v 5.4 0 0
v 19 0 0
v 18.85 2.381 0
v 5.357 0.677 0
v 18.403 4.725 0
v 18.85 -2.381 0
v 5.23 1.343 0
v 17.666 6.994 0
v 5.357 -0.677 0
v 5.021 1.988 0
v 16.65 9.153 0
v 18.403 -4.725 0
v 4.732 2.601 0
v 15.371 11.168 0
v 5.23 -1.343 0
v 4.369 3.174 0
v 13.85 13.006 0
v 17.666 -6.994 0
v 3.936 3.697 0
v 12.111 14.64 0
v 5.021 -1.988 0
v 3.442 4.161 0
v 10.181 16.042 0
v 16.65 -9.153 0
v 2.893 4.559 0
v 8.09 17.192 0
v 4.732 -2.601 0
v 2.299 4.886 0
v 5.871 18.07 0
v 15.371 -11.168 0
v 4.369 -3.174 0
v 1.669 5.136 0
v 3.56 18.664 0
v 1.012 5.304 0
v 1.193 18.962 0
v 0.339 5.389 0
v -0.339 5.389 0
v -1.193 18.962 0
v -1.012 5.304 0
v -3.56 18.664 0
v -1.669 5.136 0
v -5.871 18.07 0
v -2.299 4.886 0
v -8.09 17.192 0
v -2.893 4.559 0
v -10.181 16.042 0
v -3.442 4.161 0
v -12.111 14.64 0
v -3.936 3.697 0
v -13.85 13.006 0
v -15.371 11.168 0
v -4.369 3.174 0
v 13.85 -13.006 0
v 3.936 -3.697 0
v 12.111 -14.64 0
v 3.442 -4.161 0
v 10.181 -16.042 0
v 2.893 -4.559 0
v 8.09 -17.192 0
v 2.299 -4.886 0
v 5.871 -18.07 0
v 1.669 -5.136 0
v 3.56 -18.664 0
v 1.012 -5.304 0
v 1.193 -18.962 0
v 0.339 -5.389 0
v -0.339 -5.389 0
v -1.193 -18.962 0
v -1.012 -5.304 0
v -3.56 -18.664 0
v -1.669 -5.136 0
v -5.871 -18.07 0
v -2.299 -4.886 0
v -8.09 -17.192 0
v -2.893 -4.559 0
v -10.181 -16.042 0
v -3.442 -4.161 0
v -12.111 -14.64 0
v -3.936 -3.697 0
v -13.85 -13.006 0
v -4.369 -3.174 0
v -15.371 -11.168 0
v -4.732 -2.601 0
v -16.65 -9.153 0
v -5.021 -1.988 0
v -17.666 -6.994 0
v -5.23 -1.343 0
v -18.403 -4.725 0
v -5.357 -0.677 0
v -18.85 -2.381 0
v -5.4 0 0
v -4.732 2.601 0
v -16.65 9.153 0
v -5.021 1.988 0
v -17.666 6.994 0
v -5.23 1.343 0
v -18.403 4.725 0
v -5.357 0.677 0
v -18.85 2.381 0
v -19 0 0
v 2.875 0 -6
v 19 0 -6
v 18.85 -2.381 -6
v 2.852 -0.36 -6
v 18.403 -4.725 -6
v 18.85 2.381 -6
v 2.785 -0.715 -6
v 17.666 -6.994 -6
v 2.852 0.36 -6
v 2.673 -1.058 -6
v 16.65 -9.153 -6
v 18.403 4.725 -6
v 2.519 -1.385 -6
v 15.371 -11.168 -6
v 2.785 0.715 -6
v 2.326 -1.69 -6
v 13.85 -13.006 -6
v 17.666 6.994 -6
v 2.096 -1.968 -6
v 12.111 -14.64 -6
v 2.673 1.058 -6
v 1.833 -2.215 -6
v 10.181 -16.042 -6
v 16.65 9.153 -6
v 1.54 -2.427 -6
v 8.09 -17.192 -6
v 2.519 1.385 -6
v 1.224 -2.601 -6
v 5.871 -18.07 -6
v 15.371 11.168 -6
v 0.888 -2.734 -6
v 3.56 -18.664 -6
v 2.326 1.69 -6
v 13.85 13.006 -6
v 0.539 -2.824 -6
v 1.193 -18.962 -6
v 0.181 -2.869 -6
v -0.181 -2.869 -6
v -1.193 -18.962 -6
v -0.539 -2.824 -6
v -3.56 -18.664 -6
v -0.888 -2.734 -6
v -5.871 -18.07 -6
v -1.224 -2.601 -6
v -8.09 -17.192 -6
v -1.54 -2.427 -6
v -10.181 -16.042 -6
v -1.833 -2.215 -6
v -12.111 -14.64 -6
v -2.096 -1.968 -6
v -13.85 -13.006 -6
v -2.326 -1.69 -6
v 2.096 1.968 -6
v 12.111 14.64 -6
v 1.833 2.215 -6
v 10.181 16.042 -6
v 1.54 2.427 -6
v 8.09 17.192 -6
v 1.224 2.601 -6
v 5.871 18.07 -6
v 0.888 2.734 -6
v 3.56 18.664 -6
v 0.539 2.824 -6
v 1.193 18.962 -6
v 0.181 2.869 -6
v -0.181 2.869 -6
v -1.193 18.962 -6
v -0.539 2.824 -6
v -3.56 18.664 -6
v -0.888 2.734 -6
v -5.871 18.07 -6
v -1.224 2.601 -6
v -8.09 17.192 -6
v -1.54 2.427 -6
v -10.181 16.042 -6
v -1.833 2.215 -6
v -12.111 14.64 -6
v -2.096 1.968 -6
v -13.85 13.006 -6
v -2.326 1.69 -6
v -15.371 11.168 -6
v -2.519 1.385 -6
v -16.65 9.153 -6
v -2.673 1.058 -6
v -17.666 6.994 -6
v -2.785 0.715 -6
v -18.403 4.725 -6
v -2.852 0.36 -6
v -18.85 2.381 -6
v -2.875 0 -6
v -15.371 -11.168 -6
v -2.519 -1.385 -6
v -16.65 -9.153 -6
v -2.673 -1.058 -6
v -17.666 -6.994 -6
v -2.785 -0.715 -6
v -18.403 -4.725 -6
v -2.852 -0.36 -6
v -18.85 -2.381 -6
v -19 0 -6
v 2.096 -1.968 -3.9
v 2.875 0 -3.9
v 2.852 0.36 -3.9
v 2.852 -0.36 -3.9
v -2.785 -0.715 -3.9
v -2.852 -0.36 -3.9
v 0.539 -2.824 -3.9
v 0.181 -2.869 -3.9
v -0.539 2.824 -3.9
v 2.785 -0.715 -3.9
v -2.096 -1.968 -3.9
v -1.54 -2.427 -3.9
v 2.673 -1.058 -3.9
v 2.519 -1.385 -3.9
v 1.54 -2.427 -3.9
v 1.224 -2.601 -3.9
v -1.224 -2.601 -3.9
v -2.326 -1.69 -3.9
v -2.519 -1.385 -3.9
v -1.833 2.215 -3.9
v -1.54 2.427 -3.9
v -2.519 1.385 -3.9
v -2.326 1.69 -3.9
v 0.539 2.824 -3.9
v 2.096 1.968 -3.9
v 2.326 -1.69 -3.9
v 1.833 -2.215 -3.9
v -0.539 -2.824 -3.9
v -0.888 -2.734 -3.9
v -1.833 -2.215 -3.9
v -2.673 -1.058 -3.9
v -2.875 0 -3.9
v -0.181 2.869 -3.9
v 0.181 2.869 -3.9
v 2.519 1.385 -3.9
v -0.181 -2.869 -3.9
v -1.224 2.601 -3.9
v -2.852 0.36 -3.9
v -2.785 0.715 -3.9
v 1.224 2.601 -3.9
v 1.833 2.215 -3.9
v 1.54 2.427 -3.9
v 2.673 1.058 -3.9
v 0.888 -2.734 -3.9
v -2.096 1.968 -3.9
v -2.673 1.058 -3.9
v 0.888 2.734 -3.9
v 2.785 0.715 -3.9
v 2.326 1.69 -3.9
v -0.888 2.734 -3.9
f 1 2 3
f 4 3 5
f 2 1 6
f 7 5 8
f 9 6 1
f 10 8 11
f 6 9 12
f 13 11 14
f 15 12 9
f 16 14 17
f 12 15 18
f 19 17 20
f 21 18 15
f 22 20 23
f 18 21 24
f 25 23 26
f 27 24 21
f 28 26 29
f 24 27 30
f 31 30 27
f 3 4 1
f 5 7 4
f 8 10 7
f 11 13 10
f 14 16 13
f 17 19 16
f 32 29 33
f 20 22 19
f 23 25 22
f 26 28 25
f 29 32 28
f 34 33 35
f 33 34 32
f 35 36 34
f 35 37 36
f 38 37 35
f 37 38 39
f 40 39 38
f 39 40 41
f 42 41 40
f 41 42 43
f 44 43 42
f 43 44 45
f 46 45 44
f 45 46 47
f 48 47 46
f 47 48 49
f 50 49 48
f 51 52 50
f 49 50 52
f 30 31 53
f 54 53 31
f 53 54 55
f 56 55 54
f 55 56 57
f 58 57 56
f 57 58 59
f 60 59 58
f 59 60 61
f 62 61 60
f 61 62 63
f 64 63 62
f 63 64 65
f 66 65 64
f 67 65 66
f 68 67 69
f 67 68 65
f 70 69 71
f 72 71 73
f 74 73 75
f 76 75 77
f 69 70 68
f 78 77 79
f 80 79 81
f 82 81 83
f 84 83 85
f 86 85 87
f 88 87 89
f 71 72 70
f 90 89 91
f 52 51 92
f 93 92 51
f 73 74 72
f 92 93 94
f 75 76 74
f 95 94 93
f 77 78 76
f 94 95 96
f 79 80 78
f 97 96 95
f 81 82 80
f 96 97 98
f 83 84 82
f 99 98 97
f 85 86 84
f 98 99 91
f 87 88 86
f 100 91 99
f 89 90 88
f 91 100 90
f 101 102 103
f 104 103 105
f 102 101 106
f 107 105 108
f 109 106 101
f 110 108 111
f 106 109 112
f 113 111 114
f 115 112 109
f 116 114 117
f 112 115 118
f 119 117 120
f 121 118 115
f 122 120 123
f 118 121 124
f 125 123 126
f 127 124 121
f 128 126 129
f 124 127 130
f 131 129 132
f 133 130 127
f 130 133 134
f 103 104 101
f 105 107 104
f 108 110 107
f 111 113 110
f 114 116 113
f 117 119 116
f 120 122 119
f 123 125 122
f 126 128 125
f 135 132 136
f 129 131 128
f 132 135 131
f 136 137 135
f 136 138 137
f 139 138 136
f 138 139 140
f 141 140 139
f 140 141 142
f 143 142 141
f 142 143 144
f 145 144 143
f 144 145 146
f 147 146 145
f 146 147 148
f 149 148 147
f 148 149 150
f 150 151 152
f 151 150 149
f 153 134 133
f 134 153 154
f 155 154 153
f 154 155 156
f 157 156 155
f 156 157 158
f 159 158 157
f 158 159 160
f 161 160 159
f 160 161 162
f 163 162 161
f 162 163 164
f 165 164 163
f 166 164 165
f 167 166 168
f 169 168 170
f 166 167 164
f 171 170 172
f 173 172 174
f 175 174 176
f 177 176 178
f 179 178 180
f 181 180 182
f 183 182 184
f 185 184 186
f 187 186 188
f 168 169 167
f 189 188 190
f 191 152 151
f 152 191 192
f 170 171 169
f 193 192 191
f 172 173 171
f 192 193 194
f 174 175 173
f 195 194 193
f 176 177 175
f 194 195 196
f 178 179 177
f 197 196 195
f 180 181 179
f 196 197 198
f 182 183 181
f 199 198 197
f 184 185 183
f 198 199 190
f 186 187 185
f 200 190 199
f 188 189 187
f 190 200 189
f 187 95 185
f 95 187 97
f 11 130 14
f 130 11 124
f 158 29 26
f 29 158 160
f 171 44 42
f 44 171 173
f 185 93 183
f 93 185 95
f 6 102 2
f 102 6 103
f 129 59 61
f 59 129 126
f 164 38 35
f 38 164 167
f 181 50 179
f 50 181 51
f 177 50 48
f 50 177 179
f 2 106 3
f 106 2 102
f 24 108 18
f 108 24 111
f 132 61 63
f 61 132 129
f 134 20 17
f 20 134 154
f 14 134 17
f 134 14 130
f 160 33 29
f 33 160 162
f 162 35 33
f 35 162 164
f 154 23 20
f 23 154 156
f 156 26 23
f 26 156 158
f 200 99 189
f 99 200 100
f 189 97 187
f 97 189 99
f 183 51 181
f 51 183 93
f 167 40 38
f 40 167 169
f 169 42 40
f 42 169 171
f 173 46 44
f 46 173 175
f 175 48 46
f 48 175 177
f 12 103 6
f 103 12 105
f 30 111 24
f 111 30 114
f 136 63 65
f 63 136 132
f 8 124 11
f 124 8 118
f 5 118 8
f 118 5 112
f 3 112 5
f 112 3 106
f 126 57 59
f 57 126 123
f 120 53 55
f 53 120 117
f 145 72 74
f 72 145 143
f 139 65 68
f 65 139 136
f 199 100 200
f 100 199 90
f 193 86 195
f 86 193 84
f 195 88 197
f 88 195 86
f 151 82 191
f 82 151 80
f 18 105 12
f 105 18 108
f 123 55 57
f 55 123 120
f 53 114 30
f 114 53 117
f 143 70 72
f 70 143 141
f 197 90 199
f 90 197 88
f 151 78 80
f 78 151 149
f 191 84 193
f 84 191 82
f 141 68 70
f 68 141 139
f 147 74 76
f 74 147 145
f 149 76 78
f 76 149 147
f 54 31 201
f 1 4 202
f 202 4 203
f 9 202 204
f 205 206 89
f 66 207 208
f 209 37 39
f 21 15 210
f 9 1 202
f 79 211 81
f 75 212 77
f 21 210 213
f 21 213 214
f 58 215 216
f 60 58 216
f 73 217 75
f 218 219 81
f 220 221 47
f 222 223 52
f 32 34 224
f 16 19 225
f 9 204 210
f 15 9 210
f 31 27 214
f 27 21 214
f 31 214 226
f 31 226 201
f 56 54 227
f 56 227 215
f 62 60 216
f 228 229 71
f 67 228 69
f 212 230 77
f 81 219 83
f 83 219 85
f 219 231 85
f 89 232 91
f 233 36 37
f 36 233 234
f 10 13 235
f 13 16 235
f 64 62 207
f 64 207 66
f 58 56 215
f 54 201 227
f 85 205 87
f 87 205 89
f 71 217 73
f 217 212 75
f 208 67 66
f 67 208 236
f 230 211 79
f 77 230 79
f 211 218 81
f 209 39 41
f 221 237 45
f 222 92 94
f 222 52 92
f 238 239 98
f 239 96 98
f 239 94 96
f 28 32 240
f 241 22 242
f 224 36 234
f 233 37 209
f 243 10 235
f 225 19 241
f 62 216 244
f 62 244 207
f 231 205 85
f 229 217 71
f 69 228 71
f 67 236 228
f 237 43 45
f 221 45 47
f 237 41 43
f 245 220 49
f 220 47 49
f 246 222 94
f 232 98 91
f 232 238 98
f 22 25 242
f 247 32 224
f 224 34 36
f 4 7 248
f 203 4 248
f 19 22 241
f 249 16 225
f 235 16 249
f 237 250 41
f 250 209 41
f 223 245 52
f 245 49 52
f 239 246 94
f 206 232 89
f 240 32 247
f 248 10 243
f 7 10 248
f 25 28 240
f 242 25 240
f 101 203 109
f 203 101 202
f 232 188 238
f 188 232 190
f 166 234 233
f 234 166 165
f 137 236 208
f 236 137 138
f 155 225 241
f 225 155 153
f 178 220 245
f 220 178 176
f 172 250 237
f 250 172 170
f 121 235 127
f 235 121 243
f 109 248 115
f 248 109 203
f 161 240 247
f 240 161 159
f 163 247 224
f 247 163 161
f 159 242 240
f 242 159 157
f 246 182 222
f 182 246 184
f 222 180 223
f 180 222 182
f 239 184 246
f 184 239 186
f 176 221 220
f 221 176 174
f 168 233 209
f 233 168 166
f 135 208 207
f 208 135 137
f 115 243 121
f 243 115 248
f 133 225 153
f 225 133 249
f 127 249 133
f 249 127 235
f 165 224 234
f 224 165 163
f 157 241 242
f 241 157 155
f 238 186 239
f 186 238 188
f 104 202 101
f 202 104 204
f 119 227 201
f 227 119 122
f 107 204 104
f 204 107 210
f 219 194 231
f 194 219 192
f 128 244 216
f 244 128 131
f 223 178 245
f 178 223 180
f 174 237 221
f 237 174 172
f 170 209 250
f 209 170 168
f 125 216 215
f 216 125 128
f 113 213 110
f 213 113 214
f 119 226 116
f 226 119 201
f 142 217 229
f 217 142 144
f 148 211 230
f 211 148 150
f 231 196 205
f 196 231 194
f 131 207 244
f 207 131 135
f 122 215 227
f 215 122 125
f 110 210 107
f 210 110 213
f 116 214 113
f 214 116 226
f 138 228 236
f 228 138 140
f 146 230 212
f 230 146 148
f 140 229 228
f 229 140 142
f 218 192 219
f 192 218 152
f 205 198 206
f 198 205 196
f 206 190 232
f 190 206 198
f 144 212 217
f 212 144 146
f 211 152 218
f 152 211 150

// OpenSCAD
$fn = 50;


difference() {
	union() {
		translate(v = [0, 0, -6.0000000000]) {
			cylinder(h = 6, r = 10.0000000000);
		}
		translate(v = [0, 0, -6.0000000000]) {
			cylinder(h = 6, r = 19.0000000000);
		}
	}
	union() {
		translate(v = [0, 0, 0]) {
			rotate(a = [0, 0, 0]) {
				difference() {
					union() {
						#translate(v = [0, 0, -6.0000000000]) {
							cylinder(h = 6, r = 2.6000000000);
						}
						#translate(v = [0, 0, -3.9000000000]) {
							cylinder(h = 3.9000000000, r1 = 2.8750000000, r2 = 5.4000000000);
						}
						#translate(v = [0, 0, -6.0000000000]) {
							cylinder(h = 6, r = 2.8750000000);
						}
						#translate(v = [0, 0, -6.0000000000]) {
							cylinder(h = 6, r = 2.6000000000);
						}
					}
					union();
				}
			}
		}
	}
}
